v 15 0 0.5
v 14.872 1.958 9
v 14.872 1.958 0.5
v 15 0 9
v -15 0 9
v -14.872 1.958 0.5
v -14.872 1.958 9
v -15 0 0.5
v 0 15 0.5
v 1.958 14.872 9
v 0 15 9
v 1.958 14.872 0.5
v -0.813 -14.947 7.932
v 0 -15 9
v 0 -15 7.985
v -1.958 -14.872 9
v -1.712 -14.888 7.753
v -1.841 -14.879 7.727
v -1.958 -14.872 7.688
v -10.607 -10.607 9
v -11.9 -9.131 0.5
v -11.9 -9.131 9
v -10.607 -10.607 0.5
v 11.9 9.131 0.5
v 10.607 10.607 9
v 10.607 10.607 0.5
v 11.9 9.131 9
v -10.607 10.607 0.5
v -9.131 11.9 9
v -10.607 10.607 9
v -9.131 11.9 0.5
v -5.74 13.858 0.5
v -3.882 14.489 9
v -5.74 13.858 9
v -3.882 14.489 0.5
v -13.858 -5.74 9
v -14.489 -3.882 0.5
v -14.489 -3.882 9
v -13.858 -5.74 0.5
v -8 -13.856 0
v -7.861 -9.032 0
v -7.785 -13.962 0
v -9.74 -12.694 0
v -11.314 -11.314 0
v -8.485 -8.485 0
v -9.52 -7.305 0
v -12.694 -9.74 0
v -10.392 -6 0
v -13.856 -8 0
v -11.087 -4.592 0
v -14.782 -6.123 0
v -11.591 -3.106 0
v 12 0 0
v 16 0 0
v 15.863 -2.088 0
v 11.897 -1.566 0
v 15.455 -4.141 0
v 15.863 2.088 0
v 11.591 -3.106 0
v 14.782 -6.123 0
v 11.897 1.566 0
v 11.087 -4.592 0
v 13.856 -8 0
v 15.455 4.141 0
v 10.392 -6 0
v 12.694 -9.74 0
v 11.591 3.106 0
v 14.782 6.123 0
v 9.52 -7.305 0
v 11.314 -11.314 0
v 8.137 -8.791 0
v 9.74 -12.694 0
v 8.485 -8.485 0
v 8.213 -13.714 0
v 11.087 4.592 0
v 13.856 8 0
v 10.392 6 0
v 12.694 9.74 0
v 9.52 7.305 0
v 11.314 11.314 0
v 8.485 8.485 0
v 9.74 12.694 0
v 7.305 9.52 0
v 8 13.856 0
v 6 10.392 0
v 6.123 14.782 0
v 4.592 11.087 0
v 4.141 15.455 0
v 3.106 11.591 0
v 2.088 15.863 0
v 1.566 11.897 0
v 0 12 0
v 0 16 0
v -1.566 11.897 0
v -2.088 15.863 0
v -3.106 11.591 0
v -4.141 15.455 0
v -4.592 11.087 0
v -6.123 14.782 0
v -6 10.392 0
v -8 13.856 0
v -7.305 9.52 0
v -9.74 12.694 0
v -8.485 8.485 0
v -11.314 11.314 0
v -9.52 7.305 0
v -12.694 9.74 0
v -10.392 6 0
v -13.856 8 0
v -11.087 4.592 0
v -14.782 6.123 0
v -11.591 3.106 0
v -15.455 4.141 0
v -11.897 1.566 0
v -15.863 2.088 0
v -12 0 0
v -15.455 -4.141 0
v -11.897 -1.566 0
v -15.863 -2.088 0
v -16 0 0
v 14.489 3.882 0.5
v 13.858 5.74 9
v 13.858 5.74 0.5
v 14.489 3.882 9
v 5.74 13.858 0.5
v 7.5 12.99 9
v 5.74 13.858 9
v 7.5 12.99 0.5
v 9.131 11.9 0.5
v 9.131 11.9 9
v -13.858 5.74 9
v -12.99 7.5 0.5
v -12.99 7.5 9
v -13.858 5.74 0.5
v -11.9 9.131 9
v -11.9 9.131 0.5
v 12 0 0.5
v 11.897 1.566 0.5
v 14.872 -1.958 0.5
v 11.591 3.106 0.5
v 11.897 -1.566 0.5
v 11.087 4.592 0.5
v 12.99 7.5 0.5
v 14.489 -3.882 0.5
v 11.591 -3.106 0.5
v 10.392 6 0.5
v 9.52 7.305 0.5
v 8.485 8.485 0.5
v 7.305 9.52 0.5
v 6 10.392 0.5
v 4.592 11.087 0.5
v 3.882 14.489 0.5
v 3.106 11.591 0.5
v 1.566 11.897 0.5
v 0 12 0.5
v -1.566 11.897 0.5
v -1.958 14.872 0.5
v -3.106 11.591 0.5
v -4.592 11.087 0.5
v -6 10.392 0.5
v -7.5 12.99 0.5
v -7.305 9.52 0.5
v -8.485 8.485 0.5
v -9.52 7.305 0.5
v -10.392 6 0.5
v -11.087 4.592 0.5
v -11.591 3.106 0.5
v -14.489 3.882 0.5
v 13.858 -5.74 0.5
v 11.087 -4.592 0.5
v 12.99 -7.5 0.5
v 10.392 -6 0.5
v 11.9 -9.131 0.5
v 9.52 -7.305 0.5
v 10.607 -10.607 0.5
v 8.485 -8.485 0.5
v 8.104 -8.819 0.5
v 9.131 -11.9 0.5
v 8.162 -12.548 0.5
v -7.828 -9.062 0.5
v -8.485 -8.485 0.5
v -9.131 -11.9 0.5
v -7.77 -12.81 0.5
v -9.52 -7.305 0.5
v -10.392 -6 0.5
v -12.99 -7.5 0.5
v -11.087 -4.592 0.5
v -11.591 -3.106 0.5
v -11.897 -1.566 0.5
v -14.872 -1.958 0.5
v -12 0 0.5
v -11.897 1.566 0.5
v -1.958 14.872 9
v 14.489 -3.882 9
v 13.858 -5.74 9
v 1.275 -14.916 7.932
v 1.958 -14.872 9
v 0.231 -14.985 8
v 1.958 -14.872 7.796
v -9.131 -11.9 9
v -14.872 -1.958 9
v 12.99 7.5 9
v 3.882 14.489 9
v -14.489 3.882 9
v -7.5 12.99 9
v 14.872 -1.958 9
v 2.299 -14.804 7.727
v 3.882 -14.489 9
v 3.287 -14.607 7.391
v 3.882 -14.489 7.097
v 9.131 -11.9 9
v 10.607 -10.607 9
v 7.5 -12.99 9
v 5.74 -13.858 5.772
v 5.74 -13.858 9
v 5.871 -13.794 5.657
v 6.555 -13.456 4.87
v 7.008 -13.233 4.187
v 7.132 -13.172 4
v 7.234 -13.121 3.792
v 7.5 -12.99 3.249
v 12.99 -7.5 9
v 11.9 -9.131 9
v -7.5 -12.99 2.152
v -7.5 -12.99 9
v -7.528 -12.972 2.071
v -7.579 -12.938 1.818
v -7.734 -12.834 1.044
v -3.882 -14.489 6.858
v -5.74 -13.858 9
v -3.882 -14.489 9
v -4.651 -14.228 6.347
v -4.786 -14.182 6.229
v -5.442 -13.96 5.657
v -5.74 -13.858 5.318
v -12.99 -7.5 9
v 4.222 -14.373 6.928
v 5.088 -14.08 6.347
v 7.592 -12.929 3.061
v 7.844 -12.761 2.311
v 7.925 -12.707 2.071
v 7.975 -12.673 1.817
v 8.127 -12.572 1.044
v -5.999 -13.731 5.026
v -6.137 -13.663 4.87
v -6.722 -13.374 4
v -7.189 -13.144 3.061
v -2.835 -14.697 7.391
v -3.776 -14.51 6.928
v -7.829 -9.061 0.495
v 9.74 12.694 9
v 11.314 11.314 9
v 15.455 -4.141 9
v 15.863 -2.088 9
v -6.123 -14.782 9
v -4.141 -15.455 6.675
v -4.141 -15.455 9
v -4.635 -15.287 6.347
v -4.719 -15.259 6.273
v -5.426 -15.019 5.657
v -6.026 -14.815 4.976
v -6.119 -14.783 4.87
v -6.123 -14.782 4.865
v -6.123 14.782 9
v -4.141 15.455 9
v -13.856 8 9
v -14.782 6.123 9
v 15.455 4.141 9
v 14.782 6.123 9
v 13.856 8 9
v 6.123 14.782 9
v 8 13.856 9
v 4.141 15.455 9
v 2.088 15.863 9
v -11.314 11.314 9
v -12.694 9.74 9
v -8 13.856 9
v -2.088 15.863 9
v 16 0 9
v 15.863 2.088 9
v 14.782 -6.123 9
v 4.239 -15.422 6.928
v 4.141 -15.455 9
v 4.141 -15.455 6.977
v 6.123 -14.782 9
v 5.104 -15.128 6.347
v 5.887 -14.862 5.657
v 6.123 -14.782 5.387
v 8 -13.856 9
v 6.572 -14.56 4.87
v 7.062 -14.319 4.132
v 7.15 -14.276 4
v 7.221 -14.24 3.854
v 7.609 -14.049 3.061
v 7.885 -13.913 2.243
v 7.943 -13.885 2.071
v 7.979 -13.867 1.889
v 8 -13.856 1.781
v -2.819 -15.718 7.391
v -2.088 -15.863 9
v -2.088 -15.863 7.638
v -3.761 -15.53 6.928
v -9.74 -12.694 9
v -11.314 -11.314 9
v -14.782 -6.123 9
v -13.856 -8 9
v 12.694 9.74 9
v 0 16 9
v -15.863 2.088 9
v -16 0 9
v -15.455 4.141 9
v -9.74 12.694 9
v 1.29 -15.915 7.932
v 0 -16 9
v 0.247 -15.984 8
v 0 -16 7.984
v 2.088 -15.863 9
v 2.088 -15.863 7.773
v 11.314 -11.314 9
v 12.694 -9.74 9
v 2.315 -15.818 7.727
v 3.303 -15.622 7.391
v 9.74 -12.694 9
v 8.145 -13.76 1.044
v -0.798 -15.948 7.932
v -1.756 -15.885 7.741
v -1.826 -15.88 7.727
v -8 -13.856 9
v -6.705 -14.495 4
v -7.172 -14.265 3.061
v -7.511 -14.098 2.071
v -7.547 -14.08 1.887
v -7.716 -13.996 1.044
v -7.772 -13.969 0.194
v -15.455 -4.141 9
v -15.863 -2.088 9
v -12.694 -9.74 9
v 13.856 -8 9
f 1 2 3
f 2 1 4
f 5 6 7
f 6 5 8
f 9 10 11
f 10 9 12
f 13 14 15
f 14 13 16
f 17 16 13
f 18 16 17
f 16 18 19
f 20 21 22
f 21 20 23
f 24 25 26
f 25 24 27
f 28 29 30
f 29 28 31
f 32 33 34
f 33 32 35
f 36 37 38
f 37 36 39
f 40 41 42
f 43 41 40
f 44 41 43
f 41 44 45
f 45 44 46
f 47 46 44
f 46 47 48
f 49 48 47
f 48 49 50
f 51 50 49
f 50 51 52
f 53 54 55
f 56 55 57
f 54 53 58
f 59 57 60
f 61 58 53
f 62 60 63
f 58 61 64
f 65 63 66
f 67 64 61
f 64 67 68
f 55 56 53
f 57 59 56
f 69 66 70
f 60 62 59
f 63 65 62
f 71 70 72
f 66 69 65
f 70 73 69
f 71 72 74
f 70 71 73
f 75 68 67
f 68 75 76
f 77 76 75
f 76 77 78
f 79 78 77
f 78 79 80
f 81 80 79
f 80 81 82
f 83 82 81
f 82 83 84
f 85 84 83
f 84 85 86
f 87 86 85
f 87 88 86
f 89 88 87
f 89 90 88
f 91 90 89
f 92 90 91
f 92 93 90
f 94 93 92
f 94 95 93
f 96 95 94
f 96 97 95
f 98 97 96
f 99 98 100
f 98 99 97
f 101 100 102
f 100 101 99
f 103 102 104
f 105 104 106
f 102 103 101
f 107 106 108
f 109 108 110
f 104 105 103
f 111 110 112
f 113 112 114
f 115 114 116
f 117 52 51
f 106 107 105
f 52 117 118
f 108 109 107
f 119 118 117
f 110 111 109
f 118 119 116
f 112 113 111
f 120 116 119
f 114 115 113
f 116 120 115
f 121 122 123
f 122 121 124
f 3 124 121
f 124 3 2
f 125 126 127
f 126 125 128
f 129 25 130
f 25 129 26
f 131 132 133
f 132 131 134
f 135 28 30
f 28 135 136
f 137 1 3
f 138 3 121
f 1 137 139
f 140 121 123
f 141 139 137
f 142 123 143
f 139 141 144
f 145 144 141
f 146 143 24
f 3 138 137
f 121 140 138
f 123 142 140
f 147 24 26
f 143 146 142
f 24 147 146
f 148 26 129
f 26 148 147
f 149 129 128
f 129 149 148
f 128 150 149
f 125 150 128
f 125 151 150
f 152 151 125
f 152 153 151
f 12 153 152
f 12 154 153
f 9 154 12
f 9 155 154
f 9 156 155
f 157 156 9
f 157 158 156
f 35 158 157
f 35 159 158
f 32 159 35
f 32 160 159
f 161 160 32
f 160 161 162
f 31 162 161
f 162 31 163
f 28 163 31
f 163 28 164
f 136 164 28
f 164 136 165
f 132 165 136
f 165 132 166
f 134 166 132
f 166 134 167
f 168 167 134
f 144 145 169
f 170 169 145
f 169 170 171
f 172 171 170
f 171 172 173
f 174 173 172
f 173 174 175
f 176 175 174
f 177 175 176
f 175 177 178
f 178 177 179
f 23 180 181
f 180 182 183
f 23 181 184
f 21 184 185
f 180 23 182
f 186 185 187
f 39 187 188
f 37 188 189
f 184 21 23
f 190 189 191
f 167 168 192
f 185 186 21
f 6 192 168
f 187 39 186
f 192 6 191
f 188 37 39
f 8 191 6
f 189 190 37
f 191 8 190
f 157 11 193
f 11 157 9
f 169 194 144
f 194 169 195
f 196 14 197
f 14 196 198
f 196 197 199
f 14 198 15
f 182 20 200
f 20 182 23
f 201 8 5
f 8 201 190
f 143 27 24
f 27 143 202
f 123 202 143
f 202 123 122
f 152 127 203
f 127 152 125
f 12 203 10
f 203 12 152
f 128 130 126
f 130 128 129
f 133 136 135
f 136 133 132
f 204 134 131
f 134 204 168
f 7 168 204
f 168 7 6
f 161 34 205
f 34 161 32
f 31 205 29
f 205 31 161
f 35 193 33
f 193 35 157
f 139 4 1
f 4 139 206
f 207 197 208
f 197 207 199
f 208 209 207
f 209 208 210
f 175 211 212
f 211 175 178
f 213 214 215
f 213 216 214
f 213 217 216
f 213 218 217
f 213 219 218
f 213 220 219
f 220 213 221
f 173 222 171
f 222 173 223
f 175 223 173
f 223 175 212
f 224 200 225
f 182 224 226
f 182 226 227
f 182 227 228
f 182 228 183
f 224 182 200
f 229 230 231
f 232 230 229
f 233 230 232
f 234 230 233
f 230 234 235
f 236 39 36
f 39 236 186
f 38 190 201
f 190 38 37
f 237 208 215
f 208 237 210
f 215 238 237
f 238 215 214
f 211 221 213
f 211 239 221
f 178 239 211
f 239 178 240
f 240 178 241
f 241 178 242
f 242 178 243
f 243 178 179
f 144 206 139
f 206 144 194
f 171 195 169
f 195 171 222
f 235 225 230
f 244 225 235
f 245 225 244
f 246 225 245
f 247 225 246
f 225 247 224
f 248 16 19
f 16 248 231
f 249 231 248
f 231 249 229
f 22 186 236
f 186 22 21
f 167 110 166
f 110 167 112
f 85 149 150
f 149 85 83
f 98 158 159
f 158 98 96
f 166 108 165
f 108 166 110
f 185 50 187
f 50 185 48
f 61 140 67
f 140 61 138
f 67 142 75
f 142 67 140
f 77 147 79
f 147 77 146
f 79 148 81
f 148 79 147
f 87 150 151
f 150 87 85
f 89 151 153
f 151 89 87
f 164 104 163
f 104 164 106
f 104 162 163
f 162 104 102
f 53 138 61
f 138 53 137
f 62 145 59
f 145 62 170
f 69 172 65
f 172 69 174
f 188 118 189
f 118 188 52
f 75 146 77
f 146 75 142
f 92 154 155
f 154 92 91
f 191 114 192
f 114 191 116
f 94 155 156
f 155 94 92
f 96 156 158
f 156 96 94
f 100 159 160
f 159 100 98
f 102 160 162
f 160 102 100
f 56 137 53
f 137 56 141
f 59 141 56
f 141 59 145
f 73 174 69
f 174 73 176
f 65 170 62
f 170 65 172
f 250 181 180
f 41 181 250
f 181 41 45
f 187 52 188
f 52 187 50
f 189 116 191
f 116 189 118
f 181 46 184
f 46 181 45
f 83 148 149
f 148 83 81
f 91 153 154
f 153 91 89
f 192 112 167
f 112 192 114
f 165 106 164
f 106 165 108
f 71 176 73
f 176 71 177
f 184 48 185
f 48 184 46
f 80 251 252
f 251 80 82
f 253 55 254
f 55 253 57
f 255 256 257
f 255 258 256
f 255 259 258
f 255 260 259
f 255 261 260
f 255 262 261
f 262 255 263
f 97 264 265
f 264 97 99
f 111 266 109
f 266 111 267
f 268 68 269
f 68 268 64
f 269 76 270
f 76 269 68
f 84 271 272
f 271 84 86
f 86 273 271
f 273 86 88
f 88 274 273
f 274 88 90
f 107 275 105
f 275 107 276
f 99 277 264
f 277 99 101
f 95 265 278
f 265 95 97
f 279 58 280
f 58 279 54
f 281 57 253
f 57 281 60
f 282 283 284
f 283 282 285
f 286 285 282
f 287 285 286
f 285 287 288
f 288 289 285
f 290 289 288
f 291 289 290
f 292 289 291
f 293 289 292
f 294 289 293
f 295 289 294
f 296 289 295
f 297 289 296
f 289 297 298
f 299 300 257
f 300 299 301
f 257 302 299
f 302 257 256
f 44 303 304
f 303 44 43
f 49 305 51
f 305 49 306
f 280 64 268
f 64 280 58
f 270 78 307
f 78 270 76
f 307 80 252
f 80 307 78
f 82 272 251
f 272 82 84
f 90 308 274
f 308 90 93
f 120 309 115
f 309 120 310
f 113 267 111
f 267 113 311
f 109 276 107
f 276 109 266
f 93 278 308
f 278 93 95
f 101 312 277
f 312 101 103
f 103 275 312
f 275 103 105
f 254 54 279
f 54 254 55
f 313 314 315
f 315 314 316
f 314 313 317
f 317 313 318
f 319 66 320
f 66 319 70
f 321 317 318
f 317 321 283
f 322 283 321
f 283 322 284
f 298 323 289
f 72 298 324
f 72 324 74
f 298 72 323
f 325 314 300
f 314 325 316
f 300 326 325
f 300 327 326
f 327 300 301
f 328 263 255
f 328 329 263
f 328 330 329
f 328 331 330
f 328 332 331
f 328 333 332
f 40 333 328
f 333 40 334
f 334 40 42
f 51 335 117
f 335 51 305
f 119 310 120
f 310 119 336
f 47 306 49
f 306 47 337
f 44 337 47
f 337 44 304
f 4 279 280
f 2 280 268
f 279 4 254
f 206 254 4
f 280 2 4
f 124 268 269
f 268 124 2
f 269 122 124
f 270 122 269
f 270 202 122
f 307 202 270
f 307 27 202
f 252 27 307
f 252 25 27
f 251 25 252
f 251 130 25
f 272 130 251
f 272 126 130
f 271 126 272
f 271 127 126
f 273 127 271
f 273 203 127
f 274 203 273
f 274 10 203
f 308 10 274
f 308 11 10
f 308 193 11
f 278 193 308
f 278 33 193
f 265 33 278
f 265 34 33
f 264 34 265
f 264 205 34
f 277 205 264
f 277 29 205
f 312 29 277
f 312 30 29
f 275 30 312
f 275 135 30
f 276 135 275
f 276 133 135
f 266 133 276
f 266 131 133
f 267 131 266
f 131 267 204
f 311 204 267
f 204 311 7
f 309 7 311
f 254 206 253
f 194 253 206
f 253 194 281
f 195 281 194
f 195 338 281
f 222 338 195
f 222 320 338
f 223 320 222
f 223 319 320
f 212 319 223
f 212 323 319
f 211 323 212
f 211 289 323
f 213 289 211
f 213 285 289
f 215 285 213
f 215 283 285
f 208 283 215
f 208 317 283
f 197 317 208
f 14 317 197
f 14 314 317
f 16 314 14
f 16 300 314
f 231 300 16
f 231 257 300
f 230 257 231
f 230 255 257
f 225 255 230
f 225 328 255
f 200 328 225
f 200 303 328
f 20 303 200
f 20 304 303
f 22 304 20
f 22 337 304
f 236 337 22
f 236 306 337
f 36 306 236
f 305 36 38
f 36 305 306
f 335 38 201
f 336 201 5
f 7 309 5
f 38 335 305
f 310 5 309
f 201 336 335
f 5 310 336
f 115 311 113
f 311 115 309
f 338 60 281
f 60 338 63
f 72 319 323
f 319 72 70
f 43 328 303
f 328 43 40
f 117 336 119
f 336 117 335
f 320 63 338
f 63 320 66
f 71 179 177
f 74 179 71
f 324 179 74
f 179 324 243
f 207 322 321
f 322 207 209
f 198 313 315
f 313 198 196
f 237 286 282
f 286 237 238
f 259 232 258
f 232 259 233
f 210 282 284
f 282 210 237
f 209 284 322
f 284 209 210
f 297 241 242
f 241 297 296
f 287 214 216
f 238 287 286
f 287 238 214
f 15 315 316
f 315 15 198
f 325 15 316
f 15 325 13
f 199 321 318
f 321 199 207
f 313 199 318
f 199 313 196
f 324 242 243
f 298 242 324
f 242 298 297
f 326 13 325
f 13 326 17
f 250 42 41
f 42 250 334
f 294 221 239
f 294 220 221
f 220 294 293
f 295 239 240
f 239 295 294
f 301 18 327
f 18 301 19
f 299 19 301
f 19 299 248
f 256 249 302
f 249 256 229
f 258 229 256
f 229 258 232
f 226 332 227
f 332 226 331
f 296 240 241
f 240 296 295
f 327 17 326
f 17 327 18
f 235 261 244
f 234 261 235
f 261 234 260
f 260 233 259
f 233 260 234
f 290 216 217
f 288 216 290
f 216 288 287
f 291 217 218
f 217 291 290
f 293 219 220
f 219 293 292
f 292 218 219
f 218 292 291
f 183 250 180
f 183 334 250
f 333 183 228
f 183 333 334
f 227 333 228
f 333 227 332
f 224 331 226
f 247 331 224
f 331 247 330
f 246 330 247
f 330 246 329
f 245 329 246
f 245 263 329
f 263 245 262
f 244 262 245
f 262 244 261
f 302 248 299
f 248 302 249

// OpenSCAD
// file: ../build_environments.scad
// build_environments.scad: modules to build level sections
//

module pool(diameter=10.0, wall_height=2.0, step_width=3.0, connections=[])
{
    difference() {
        union() {
        difference() {
            cylinder(h=0.5,r1=diameter+step_width,r2=diameter+step_width,$fn=48);
            translate([0,0,-0.1])
                cylinder(h=0.7,r1=diameter,r2=diameter,$fn=48);
        }
        difference() {
            cylinder(h=wall_height,r1=diameter+step_width+1.0,r2=diameter+step_width+1.0,$fn=48);
            translate([0,0,-0.1])
                cylinder(h=wall_height+0.2,r1=diameter+step_width,r2=diameter+step_width,$fn=48);
        }
        }
    
        for (c = connections)
        {
            rotate([0,90,0]) {
                angle = atan2(c[1],c[0]);
                rotate([-angle,0,0]) {
                    cylinder(h=diameter+5.0,r1=c[2],r2=c[2],$fn=48);
                }
            }
        }
    }
}

module straight(length=10.0, width=2.0, dy1=0.0, dy2=0.0, dz=0.0)
{
    dims = [0, 0, 0, 0, 0, (dz/length)];
    matrix = [
        [ 1, dims[0], dims[1], 0 ],
        [ dims[2], 1, dims[4], 0 ],
        [ dims[5], dims[3], 1, 0 ],
        [ 0, 0, 0, 1 ]
    ];
    multmatrix(matrix)
    difference() {
        translate([dy1,0,0])
        union() {
            rotate([0,90,0]) {
                difference() {
                    cylinder(h=(length-dy1-dy2),r1=width+1.0,r2=width+1.0,$fn=24);
                    translate([0,0,-0.1])
                        cylinder(h=(length-dy1-dy2+0.2),r1=width,r2=width,$fn=24);
                }
                difference() {
                    cylinder(h=1.0,r1=width+2.0,r2=width+2.0,$fn=24);
                    translate([0,0,-0.1])
                        cylinder(h=1.2,r1=width,r2=width,$fn=24);
                }
                translate([0,0,(length-dy1-dy2)-1.0]) {
                    difference() {
                        cylinder(h=1.0,r1=width+2.0,r2=width+2.0,$fn=24);
                        translate([0,0,-0.1])
                            cylinder(h=1.2,r1=width,r2=width,$fn=24);
                    }
                }
            }
        }
        translate([0,0,-(2*width+4.0)/2])
            cube([3*length,3*length,2*width+4.0],center=true);
    }
}

module curve(p0=[0,0], center=[0,0], dir=1, angle=0.0, width=2.0)
{
    radius = sqrt((p0[0]-center[0])*(p0[0]-center[0]) + (p0[1]-center[1])*(p0[1]-center[1]));
    if (dir == 0) {
        difference() {
            rotate([0,0,-90])
            difference() {
                rotate_extrude(angle = angle, convexity = 10, $fn=32)
                    translate([radius, 0, 0])
                        circle(r = width+1.0,$fn=24);
                rotate([0,0,-1.0])
                    rotate_extrude(angle = angle+2.0, convexity = 10, $fn=32)
                        translate([radius, 0, 0])
                            circle(r = width,$fn=24);
            }
            translate([0,0,-(2*width+4.0)/2])
                cube([5*radius,5*radius,2*width+4.0],center=true);
        }
    }
    else {
        difference() {
            rotate([0,0,90])
            difference() {
                rotate_extrude(angle = -angle, convexity = 10, $fn=32)
                    translate([radius, 0, 0])
                        circle(r = width+1.0,$fn=24);
                rotate([0,0,1.0])
                    rotate_extrude(angle = -angle-2.0, convexity = 10, $fn=32)
                        translate([radius, 0, 0])
                            circle(r = width,$fn=24);
            }
            translate([0,0,-(2*width+4.0)/2])
                cube([5*radius,5*radius,2*width+4.0],center=true);
        }
    }

}

// test pool
//pool(diameter=12.0000, wall_height=3.0000, step_width=3.0000, connections=[[0.0000,-26.0000,2.0000], [23.6074,0.0000,2.0000]]);

// test straight, slope
//straight(length=26.0000, width=2.0000, dy1=11.8322, dy2=6.7082, dz=0.0000);
//straight(length=29.1549, width=12.0000, dy1=0.0000, dy2=0.0000, dz=-15.0000);

// test curve
//curve(p0=[23.6074, 0.0000], center=[23.6074, 5.0000], dir=0, angle=60.1011, width=2.0000);
//curve(p0=[33.6426, 12.4219], center=[37.9771, 9.9295], dir=1, angle=120.4627, width=2.0000);
// main file
use <../build_environments.scad>;
pool(diameter=12.0000, wall_height=9.0000, step_width=3.0000, connections=[[0.5102,-33.0298,8.0000]]);
